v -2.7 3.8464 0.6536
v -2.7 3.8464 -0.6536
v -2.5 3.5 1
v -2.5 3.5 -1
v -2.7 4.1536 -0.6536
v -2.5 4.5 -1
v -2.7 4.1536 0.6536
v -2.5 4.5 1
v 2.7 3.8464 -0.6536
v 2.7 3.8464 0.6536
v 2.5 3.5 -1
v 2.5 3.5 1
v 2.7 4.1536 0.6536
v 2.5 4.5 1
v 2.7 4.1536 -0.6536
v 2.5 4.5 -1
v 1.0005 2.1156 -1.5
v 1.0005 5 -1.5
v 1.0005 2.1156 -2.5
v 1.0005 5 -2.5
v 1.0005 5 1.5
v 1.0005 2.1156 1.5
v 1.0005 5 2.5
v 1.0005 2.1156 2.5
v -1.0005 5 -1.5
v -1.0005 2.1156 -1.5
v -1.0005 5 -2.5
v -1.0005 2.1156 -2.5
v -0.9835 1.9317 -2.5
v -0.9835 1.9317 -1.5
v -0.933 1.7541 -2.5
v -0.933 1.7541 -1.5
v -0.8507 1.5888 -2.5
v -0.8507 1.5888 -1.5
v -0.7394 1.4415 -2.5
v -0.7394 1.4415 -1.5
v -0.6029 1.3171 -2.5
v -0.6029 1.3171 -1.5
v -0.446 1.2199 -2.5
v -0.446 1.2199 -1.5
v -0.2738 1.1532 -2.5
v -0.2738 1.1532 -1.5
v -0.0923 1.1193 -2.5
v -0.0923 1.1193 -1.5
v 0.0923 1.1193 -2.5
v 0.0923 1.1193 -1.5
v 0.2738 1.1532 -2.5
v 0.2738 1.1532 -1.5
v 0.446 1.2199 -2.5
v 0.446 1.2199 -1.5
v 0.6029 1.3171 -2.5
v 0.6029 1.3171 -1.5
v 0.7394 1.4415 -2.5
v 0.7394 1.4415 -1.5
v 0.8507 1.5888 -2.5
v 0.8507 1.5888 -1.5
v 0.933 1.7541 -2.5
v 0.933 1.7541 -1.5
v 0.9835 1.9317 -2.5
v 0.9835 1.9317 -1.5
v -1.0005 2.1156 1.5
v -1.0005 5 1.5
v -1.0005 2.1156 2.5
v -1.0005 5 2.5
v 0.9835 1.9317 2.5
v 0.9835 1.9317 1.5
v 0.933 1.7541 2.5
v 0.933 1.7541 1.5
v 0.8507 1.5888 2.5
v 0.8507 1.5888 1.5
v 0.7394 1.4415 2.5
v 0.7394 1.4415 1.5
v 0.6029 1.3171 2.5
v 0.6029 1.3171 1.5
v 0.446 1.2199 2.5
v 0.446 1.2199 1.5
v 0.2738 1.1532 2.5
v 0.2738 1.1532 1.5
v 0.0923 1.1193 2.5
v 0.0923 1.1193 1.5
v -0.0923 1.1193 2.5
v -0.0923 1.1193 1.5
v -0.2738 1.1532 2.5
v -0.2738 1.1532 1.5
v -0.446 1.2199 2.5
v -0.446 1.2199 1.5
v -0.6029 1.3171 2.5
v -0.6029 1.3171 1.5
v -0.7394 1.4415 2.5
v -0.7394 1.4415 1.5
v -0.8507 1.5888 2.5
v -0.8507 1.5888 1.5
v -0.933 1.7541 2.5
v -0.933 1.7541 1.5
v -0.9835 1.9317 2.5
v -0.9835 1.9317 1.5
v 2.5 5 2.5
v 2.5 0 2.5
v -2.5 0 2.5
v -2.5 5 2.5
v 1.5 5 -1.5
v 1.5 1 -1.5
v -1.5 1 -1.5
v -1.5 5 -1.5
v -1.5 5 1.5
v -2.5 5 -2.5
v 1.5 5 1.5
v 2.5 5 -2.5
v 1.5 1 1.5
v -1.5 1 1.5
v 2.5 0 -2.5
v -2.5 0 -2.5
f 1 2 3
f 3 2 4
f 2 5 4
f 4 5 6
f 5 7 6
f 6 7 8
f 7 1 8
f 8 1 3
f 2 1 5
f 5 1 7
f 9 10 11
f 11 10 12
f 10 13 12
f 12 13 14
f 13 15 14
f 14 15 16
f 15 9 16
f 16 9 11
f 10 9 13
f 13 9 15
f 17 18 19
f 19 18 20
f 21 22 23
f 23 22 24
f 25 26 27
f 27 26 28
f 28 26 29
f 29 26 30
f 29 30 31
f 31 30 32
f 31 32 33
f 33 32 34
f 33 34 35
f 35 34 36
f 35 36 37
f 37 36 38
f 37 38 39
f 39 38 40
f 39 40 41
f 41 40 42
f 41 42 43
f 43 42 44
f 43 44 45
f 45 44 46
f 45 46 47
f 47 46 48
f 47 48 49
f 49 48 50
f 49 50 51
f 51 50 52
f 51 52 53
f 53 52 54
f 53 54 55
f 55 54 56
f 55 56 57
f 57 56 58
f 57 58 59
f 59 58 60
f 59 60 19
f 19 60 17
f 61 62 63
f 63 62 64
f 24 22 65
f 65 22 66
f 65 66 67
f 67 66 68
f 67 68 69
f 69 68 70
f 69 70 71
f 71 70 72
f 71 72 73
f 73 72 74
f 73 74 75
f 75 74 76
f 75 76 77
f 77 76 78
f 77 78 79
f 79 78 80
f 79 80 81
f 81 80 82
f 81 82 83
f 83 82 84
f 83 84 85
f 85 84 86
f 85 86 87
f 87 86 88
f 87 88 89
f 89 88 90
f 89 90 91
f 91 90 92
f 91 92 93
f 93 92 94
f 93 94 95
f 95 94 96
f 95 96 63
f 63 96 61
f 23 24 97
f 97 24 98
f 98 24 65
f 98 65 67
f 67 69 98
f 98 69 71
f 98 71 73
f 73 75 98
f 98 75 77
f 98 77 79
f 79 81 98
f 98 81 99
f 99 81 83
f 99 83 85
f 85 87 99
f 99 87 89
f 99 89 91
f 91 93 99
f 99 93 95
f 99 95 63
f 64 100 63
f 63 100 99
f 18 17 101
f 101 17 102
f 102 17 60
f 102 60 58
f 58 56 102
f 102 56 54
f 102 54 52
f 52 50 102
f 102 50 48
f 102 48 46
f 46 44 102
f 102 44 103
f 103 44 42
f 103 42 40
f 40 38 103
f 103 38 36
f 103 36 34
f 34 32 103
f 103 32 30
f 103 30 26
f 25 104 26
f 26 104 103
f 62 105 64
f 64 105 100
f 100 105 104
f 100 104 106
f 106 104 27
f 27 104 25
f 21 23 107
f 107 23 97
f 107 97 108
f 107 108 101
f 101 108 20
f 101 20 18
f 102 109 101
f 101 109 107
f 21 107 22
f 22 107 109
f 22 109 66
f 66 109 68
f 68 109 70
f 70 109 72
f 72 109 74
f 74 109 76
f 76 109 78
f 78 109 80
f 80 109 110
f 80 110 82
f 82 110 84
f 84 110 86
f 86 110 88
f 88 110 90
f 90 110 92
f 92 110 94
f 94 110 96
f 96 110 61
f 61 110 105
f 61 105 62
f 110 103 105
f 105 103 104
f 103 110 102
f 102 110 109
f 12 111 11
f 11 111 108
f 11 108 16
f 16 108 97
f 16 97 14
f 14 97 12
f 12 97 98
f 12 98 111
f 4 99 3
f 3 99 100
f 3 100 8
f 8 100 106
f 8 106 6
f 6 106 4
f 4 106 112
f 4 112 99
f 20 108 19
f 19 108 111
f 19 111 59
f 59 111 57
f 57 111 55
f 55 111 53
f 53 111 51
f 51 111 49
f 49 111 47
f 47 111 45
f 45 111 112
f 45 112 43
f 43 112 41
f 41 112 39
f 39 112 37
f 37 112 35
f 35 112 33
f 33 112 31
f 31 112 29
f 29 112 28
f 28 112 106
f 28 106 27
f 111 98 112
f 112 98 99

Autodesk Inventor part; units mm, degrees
ref_plane "YZ Plane" through (0, 0, 0) normal (1, 0, 0) x (0, 1, 0)
ref_plane "XZ Plane" through (0, 0, 0) normal (0, 1, 0) x (-1, 0, 0)
ref_plane "XY Plane" through (0, 0, 0) normal (0, 0, 1) x (1, 0, 0)
sketch "Sketch1" plane through (0, 0, 0) normal (0, 1, 0) x (-1, 0, 0)
  line L0 (-2.5, 2.5) -> (2.5, 2.5)
  line L1 (2.5, 2.5) -> (2.5, -2.5)
  line L2 (2.5, -2.5) -> (-2.5, -2.5)
  line L3 (-2.5, -2.5) -> (-2.5, 2.5)
  line L4 (-2.5, 2.5) -> (2.5, -2.5) construction
  line L5 (2.5, 2.5) -> (-2.5, -2.5) construction
  point P0 (0, 0)
  dimension "d0" = 5
  dimension "d1" = 5
extrude "Extrusion1" add sketch "Sketch1" along normal blind 5
shell "Shell1" thickness 1 removed faces 1 at (-0.8333, 5, -0.8333)
sketch "Sketch3" plane through (-2.5, 0, 2.5) normal (0, 0, 1) x (1, 0, 0)
  line L0 (2.5, 9.1674) -> (2.5, 2.1156) construction
  line L1 (1.4995, 9.1674) -> (1.4995, 2.1156)
  line L2 (3.5005, 2.1156) -> (3.5005, 9.1674)
  arc A0 (3.5005, 9.1674) -> (1.4995, 9.1674) centre (2.5, 9.1674) ccw
  arc A1 (1.4995, 2.1156) -> (3.5005, 2.1156) centre (2.5, 2.1156) ccw
  point P0 (2.5, 0)
  point P1 (2.5, 5.6415)
extrude "Extrusion3" cut sketch "Sketch3" against normal through all
sketch "Sketch4" plane through (0, 5, 0) normal (0, 1, 0) x (1, 0, 0)
  point P0 (0, 0)
sketch "Sketch5" plane through (0, 5, 0) normal (0, 1, 0) x (1, 0, 0)
  point P0 (0, 0)
sketch "Sketch6" plane through (0, 5, 0) normal (0, 1, 0) x (1, 0, 0)
  point P0 (0, 0)
sketch "Sketch7" plane through (0, 0, 0) normal (0, -1, 0) x (1, 0, 0)
  point P0 (0, 0)
sketch "Sketch8" plane through (-2.5, 0, -2.5) normal (-1, 0, 0) x (0, 0, 1)
  point P0 (2.5, 0)
sketch "Sketch9" plane through (2.5, 0, 2.5) normal (1, 0, 0) x (0, 0, -1)
  line L0 (1.5, 3.5) -> (3.5, 3.5)
  line L1 (3.5, 3.5) -> (3.5, 4.5)
  line L2 (3.5, 4.5) -> (1.5, 4.5)
  line L3 (1.5, 4.5) -> (1.5, 3.5)
  line L4 (1.5, 3.5) -> (3.5, 4.5) construction
  line L5 (3.5, 3.5) -> (1.5, 4.5) construction
  line L6 (0, 5) -> (5, 5) projected
  point P0 (2.5, 0)
  point P1 (2.5, 4)
  dimension "d10" = 1
  dimension "d14" = 2
  dimension "d15" = 1
extrude "Extrusion4" add sketch "Sketch9" along normal blind 0.2 draft -60
sketch "Sketch10" plane through (-2.5, 0, -2.5) normal (-1, 0, 0) x (0, 0, 1)
  line L0 (1.5, 3.5) -> (3.5, 3.5)
  line L1 (3.5, 3.5) -> (3.5, 4.5)
  line L2 (3.5, 4.5) -> (1.5, 4.5)
  line L3 (1.5, 4.5) -> (1.5, 3.5)
  line L4 (1.5, 3.5) -> (3.5, 4.5) construction
  line L5 (3.5, 3.5) -> (1.5, 4.5) construction
  line L6 (0, 5) -> (5, 5) projected
  point P0 (2.5, 0)
  point P1 (2.5, 4)
  dimension "d13" = 1
  dimension "d16" = 2
  dimension "d17" = 1
extrude "Extrusion5" add sketch "Sketch10" along normal blind 0.2 draft -60
equation "\"d16\" = d14"
equation "\"d17\" = d15"
properties part number "snapfit_v08"
